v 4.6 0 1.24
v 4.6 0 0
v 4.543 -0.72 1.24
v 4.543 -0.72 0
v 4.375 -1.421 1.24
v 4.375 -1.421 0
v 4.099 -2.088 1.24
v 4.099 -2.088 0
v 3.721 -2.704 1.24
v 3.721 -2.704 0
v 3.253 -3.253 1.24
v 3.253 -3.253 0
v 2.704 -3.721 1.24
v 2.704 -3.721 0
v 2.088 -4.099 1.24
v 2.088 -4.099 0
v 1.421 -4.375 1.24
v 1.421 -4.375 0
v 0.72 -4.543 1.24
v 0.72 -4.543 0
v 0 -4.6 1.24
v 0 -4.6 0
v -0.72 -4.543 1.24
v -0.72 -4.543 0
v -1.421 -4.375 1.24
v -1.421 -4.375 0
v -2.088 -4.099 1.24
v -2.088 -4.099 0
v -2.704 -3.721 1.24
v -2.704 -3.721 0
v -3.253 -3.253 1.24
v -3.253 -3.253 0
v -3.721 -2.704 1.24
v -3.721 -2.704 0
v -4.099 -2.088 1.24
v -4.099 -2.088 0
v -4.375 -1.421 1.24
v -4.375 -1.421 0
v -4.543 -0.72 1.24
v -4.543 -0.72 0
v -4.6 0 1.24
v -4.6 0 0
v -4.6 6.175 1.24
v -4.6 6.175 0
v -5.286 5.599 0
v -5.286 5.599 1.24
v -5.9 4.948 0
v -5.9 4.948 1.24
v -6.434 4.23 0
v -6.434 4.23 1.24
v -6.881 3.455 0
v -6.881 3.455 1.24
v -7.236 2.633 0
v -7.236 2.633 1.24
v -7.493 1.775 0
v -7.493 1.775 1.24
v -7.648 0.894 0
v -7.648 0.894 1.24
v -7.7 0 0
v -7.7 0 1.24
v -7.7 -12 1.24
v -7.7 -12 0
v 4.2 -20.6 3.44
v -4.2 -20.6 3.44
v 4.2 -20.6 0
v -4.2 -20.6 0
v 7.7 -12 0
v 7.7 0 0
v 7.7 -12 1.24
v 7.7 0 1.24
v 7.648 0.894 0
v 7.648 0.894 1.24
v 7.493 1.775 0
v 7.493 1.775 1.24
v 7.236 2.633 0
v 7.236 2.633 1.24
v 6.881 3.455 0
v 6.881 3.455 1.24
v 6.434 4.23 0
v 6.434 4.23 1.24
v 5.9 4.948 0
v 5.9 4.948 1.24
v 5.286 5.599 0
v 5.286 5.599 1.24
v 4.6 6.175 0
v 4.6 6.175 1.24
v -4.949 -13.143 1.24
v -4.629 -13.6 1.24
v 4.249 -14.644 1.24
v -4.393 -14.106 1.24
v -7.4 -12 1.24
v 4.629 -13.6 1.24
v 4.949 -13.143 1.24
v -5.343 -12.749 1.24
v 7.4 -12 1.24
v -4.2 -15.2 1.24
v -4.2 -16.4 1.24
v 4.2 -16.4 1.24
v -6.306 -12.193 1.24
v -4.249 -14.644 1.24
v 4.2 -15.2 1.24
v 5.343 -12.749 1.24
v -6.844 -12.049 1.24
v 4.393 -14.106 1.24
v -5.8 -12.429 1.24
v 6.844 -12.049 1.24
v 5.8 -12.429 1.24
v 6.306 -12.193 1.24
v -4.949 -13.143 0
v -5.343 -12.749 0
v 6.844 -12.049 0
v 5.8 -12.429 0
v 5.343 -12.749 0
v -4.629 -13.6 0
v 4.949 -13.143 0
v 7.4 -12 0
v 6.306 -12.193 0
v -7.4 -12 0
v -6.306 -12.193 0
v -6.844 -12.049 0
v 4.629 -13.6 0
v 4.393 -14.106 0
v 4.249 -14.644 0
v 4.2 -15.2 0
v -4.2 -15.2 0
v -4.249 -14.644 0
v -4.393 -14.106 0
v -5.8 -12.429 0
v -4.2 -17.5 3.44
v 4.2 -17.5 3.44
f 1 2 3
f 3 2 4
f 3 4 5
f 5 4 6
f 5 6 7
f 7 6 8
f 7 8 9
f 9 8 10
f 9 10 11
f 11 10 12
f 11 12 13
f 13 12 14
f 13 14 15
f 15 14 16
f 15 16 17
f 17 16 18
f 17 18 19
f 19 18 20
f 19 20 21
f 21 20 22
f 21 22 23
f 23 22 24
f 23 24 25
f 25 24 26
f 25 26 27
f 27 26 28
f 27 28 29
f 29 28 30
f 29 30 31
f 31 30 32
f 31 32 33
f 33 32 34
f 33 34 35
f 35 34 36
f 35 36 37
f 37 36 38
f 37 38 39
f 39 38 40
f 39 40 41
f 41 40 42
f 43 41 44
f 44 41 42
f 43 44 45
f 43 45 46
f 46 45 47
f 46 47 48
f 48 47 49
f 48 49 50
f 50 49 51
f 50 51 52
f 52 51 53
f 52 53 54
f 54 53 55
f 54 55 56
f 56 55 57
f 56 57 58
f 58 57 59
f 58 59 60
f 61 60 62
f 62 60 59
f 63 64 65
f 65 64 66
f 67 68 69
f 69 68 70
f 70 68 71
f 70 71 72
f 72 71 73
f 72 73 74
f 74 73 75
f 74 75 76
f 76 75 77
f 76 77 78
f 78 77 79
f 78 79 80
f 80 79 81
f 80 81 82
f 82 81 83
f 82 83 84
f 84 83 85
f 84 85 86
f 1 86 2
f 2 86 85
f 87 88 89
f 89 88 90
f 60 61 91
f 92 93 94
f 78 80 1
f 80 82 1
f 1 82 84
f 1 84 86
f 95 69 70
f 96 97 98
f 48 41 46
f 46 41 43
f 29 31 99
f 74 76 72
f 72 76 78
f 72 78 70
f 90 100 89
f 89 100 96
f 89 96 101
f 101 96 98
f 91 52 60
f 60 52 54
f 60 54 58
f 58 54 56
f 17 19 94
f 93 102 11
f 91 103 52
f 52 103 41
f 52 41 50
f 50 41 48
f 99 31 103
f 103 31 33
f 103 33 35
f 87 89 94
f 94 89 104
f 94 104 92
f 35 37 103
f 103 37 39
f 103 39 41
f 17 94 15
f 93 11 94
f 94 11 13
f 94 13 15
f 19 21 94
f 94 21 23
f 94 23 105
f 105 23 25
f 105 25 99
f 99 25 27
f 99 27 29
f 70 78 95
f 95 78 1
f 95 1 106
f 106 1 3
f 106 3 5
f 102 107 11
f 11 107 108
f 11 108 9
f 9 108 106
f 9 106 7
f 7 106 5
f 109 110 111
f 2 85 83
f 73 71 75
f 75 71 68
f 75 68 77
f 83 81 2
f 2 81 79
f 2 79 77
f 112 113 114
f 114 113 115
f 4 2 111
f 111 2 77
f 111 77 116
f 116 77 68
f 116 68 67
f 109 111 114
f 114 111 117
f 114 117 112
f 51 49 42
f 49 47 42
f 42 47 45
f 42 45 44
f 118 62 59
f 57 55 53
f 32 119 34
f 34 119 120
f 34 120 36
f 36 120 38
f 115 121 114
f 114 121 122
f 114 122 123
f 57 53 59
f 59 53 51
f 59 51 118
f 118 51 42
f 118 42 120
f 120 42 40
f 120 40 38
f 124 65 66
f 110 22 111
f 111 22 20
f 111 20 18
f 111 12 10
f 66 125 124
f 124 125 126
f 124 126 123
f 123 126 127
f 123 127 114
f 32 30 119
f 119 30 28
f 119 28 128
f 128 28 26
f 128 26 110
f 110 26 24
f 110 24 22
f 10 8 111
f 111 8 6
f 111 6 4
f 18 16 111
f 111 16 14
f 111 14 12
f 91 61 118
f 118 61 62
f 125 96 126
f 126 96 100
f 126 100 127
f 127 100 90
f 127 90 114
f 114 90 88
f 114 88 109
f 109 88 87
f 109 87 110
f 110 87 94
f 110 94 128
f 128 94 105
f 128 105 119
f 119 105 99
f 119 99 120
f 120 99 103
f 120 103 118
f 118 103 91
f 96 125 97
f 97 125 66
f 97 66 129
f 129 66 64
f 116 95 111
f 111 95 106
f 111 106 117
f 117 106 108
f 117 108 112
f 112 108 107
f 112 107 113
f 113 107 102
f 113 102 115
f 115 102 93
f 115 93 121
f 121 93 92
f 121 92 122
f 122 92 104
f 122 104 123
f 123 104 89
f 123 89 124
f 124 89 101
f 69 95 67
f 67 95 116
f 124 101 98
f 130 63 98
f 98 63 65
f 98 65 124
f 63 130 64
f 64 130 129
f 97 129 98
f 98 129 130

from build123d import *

# Parameters (mm, degrees)
EXTRUDE_1_DEPTH     = 1.24
CUT_EXTRUDE_1_DEPTH = 1.24
SKETCH_4_W          = 8.4
SKETCH_4_H          = 3
EXTRUDE_2_DEPTH     = 2.2
CHAMFER_1_SIZE      = 1.2
CHAMFER_1_SIZE_2    = 2.4


with BuildPart() as part:
    # Эскиз1 → Бобышка-Вытянуть1 (new body)
    with BuildSketch(Plane.XY):
        with BuildLine():
            Line((-4.6, 0), (-4.6, 6.174949393))
            ThreePointArc((-4.6, 6.174949393), (-6.88149693, 3.454706934), (-7.7, 0))
            Line((-7.7, 0), (-7.7, -20.6))
            Line((-7.7, -20.6), (7.7, -20.6))
            Line((7.7, -20.6), (7.7, 0))
            ThreePointArc((7.7, 0), (6.88149693, 3.454706934), (4.6, 6.174949393))
            Line((4.6, 6.174949393), (4.6, 0))
            ThreePointArc((4.6, 0), (0, -4.6), (-4.6, 0))
        make_face()
    extrude(amount=EXTRUDE_1_DEPTH)

    # Эскиз3 → Вырез-Вытянуть1 (cut)
    with BuildSketch(Plane.XY.offset(1.24)):
        with BuildLine():
            Line((-7.7, -20.6), (-4.2, -20.6))
            Line((-4.2, -20.6), (-4.2, -15.2))
            ThreePointArc((-4.2, -15.2), (-5.1372583, -12.9372583), (-7.4, -12))
            Line((-7.4, -12), (-7.7, -12))
            Line((-7.7, -12), (-7.7, -20.6))
        make_face()
        with BuildLine():
            Line((4.2, -20.6), (4.2, -15.2))
            ThreePointArc((4.2, -15.2), (5.1372583, -12.9372583), (7.4, -12))
            Line((7.4, -12), (7.7, -12))
            Line((7.7, -12), (7.7, -20.6))
            Line((7.7, -20.6), (4.2, -20.6))
        make_face()
    extrude(amount=-CUT_EXTRUDE_1_DEPTH, mode=Mode.SUBTRACT)

    # Эскиз4 → Бобышка-Вытянуть2 (add)
    with BuildSketch(Plane.XY.offset(1.24)):
        with Locations((0, -19.1)):
            Rectangle(SKETCH_4_W, SKETCH_4_H)
    extrude(amount=EXTRUDE_2_DEPTH)

    # Фаска1
    # the kernel refuses this chamfer: 2.4, 1.2 mm, written as the material it adds along each edge
    with BuildSketch(Plane(origin=(4.2, -17.6, 1.24), x_dir=(0, 0.9976223042390325, -0.06891834360170876), z_dir=(-1, 0, 0))) as chamfer_1_piece_1_section:
        Polygon((CHAMFER_1_SIZE * 0.997622304239, -CHAMFER_1_SIZE * 0.0689183436017), (-CHAMFER_1_SIZE_2 * 0.0689183436017, -CHAMFER_1_SIZE_2 * 0.997622304239), (0, 0), align=None)
    chamfer_1_piece_1 = extrude(amount=8.4, mode=Mode.PRIVATE)
    chamfer_1_piece_1 = split(chamfer_1_piece_1, bisect_by=Plane(origin=(0, -17.211387721, 3.44), z_dir=(0, 0, -1)), keep=Keep.TOP, mode=Mode.PRIVATE)
    add(chamfer_1_piece_1)


solid = part.part
